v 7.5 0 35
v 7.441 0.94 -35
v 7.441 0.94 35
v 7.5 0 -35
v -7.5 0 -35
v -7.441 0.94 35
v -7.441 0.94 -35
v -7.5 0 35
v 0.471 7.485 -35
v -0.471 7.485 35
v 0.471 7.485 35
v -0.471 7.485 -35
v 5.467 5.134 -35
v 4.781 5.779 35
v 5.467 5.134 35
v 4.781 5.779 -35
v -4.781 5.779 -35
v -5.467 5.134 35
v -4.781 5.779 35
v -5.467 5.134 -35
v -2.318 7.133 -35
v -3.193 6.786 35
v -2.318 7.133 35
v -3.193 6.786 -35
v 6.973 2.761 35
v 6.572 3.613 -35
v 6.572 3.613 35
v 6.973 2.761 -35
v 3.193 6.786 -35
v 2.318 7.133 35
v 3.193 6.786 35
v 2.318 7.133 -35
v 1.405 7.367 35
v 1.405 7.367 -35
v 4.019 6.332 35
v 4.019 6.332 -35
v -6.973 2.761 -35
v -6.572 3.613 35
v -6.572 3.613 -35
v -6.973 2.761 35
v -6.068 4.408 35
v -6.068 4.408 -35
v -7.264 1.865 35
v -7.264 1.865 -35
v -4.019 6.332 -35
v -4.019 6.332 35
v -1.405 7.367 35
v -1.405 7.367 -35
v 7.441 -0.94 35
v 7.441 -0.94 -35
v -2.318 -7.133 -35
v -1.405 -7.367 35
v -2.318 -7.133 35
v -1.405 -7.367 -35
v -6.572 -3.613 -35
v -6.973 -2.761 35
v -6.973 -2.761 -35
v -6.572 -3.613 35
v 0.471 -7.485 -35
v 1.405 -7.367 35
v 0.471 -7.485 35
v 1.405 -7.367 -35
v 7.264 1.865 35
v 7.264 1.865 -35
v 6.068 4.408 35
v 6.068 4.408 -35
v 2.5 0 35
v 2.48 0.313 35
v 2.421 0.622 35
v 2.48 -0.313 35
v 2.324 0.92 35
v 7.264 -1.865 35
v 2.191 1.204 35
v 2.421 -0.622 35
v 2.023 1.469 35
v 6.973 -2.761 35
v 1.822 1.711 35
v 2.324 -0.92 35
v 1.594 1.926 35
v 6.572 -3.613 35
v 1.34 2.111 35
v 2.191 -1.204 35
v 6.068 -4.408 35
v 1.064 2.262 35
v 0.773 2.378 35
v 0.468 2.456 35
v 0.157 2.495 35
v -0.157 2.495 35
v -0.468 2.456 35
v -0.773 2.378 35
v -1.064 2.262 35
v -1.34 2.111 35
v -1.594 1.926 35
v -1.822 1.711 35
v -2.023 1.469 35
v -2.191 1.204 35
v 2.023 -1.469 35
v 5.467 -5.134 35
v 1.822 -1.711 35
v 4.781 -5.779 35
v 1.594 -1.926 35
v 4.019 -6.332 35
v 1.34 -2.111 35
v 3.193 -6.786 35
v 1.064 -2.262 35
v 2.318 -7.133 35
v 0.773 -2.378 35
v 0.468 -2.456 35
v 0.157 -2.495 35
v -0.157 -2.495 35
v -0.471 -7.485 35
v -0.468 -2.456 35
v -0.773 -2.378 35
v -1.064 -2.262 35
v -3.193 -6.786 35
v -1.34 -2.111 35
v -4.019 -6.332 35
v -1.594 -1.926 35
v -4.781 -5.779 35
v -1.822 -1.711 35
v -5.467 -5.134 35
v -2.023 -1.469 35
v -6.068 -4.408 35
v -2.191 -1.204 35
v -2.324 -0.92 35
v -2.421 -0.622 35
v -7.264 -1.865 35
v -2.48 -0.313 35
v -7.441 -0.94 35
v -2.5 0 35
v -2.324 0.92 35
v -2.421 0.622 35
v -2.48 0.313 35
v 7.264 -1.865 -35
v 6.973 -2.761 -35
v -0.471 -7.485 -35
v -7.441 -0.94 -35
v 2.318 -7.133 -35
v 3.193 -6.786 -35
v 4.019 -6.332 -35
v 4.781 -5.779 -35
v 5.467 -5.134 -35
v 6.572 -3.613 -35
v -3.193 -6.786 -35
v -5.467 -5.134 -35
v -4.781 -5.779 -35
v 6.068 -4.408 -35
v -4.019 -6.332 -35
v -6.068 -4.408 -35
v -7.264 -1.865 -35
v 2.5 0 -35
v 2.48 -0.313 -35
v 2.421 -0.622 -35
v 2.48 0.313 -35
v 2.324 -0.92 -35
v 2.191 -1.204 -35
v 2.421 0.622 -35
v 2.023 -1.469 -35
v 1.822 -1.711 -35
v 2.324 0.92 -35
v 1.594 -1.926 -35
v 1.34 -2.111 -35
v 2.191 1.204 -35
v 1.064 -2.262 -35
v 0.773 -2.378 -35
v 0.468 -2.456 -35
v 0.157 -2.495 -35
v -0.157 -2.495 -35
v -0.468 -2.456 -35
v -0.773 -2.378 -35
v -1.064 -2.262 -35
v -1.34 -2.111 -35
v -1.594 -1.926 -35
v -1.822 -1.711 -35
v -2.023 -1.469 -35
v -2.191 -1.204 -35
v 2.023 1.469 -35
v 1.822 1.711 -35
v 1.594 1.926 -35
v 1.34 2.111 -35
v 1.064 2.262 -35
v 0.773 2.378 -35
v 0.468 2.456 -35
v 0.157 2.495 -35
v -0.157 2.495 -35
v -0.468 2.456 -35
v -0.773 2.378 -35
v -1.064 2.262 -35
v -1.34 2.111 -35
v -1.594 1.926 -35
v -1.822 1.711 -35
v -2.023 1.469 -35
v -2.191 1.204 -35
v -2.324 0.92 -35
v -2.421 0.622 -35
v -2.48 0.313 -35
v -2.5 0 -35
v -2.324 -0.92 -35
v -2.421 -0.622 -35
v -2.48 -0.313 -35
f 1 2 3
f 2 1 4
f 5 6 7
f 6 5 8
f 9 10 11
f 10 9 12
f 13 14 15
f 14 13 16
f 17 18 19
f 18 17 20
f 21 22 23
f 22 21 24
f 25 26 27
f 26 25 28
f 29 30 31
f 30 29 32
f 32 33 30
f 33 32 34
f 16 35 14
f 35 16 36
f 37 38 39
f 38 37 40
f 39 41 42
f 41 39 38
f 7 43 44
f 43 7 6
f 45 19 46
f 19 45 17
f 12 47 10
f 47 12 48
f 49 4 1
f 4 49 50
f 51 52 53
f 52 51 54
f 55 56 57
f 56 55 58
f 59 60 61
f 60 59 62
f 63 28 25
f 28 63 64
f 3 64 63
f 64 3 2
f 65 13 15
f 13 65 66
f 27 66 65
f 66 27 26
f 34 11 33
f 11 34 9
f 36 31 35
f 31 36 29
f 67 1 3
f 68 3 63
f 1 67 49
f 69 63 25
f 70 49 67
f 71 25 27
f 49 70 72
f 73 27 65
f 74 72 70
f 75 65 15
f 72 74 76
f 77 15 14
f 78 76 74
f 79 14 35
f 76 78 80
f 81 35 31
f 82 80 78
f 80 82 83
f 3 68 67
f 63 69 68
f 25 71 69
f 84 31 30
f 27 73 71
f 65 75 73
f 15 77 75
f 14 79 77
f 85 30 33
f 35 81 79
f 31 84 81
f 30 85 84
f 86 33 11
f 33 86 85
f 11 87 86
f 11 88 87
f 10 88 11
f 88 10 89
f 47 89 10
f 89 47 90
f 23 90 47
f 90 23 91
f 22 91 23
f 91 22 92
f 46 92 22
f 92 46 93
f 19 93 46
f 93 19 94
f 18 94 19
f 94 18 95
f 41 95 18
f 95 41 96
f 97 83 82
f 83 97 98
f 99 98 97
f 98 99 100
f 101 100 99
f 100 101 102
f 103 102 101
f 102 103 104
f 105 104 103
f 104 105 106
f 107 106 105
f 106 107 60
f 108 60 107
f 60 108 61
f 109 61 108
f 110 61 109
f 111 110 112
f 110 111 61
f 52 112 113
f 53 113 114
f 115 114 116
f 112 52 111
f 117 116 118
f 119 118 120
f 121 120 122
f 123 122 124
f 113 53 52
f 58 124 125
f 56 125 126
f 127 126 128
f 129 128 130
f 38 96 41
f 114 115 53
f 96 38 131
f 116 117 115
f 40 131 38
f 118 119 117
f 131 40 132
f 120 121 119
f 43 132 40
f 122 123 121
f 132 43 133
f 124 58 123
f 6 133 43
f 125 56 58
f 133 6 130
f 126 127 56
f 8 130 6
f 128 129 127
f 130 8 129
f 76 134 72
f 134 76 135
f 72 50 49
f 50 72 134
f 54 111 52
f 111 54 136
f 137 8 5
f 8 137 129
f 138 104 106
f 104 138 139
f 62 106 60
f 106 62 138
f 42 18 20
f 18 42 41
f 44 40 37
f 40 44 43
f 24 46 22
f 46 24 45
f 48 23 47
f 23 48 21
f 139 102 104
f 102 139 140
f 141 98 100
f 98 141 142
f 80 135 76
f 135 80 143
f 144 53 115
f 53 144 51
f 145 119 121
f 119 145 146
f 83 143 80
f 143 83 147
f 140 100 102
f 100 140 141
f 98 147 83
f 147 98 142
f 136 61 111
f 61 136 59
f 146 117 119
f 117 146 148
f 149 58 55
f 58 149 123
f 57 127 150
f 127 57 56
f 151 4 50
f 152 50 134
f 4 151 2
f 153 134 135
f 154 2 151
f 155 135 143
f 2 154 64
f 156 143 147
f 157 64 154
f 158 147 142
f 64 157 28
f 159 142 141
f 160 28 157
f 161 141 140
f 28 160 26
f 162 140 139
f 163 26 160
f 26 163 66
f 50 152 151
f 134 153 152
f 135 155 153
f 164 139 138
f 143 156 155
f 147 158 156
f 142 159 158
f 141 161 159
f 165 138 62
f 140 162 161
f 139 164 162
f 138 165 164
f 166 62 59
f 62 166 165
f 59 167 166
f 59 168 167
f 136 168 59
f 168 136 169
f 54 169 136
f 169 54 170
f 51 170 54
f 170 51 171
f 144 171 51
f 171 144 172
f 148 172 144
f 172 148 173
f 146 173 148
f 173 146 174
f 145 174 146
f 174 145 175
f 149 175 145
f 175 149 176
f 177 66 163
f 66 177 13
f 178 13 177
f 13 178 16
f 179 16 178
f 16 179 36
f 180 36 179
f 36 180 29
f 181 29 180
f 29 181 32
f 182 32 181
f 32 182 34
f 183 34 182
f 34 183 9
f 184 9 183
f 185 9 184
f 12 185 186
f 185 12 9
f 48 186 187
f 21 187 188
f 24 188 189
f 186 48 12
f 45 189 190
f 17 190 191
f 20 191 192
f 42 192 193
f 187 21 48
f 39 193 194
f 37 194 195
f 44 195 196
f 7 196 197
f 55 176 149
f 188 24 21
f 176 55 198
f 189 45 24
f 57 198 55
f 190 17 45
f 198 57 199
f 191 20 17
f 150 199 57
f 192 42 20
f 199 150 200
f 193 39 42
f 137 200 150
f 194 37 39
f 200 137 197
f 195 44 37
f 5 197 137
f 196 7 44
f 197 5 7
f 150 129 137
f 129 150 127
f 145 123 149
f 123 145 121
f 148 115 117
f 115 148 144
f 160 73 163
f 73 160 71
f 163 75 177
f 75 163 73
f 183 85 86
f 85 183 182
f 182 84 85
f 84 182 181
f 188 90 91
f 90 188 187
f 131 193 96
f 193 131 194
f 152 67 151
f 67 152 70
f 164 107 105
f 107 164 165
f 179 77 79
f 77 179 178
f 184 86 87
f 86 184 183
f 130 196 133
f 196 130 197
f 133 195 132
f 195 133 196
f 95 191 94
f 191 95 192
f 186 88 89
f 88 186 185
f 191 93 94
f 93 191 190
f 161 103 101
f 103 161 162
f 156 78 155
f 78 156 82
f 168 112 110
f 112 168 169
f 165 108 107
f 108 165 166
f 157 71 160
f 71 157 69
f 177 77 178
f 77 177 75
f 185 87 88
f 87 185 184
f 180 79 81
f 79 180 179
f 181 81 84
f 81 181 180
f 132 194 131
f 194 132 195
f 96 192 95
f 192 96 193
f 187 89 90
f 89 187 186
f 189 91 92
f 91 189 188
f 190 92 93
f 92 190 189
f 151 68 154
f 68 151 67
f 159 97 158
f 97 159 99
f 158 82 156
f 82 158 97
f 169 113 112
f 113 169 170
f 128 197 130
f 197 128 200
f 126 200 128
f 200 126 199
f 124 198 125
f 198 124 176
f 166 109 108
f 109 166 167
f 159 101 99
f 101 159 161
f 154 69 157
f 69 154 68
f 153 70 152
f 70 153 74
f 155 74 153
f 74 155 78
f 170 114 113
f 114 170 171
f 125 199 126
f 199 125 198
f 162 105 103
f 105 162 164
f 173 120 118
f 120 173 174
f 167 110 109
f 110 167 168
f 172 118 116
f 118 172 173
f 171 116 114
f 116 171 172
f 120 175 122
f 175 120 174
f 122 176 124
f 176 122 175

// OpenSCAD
$fn = 50;


difference() {
	union() {
		translate(v = [0, 0, -35.0000000000]) {
			cylinder(h = 70, r = 7.5000000000);
		}
	}
	union() {
		translate(v = [0, 0, -100.0000000000]) {
			cylinder(h = 200, r = 2.5000000000);
		}
	}
}
